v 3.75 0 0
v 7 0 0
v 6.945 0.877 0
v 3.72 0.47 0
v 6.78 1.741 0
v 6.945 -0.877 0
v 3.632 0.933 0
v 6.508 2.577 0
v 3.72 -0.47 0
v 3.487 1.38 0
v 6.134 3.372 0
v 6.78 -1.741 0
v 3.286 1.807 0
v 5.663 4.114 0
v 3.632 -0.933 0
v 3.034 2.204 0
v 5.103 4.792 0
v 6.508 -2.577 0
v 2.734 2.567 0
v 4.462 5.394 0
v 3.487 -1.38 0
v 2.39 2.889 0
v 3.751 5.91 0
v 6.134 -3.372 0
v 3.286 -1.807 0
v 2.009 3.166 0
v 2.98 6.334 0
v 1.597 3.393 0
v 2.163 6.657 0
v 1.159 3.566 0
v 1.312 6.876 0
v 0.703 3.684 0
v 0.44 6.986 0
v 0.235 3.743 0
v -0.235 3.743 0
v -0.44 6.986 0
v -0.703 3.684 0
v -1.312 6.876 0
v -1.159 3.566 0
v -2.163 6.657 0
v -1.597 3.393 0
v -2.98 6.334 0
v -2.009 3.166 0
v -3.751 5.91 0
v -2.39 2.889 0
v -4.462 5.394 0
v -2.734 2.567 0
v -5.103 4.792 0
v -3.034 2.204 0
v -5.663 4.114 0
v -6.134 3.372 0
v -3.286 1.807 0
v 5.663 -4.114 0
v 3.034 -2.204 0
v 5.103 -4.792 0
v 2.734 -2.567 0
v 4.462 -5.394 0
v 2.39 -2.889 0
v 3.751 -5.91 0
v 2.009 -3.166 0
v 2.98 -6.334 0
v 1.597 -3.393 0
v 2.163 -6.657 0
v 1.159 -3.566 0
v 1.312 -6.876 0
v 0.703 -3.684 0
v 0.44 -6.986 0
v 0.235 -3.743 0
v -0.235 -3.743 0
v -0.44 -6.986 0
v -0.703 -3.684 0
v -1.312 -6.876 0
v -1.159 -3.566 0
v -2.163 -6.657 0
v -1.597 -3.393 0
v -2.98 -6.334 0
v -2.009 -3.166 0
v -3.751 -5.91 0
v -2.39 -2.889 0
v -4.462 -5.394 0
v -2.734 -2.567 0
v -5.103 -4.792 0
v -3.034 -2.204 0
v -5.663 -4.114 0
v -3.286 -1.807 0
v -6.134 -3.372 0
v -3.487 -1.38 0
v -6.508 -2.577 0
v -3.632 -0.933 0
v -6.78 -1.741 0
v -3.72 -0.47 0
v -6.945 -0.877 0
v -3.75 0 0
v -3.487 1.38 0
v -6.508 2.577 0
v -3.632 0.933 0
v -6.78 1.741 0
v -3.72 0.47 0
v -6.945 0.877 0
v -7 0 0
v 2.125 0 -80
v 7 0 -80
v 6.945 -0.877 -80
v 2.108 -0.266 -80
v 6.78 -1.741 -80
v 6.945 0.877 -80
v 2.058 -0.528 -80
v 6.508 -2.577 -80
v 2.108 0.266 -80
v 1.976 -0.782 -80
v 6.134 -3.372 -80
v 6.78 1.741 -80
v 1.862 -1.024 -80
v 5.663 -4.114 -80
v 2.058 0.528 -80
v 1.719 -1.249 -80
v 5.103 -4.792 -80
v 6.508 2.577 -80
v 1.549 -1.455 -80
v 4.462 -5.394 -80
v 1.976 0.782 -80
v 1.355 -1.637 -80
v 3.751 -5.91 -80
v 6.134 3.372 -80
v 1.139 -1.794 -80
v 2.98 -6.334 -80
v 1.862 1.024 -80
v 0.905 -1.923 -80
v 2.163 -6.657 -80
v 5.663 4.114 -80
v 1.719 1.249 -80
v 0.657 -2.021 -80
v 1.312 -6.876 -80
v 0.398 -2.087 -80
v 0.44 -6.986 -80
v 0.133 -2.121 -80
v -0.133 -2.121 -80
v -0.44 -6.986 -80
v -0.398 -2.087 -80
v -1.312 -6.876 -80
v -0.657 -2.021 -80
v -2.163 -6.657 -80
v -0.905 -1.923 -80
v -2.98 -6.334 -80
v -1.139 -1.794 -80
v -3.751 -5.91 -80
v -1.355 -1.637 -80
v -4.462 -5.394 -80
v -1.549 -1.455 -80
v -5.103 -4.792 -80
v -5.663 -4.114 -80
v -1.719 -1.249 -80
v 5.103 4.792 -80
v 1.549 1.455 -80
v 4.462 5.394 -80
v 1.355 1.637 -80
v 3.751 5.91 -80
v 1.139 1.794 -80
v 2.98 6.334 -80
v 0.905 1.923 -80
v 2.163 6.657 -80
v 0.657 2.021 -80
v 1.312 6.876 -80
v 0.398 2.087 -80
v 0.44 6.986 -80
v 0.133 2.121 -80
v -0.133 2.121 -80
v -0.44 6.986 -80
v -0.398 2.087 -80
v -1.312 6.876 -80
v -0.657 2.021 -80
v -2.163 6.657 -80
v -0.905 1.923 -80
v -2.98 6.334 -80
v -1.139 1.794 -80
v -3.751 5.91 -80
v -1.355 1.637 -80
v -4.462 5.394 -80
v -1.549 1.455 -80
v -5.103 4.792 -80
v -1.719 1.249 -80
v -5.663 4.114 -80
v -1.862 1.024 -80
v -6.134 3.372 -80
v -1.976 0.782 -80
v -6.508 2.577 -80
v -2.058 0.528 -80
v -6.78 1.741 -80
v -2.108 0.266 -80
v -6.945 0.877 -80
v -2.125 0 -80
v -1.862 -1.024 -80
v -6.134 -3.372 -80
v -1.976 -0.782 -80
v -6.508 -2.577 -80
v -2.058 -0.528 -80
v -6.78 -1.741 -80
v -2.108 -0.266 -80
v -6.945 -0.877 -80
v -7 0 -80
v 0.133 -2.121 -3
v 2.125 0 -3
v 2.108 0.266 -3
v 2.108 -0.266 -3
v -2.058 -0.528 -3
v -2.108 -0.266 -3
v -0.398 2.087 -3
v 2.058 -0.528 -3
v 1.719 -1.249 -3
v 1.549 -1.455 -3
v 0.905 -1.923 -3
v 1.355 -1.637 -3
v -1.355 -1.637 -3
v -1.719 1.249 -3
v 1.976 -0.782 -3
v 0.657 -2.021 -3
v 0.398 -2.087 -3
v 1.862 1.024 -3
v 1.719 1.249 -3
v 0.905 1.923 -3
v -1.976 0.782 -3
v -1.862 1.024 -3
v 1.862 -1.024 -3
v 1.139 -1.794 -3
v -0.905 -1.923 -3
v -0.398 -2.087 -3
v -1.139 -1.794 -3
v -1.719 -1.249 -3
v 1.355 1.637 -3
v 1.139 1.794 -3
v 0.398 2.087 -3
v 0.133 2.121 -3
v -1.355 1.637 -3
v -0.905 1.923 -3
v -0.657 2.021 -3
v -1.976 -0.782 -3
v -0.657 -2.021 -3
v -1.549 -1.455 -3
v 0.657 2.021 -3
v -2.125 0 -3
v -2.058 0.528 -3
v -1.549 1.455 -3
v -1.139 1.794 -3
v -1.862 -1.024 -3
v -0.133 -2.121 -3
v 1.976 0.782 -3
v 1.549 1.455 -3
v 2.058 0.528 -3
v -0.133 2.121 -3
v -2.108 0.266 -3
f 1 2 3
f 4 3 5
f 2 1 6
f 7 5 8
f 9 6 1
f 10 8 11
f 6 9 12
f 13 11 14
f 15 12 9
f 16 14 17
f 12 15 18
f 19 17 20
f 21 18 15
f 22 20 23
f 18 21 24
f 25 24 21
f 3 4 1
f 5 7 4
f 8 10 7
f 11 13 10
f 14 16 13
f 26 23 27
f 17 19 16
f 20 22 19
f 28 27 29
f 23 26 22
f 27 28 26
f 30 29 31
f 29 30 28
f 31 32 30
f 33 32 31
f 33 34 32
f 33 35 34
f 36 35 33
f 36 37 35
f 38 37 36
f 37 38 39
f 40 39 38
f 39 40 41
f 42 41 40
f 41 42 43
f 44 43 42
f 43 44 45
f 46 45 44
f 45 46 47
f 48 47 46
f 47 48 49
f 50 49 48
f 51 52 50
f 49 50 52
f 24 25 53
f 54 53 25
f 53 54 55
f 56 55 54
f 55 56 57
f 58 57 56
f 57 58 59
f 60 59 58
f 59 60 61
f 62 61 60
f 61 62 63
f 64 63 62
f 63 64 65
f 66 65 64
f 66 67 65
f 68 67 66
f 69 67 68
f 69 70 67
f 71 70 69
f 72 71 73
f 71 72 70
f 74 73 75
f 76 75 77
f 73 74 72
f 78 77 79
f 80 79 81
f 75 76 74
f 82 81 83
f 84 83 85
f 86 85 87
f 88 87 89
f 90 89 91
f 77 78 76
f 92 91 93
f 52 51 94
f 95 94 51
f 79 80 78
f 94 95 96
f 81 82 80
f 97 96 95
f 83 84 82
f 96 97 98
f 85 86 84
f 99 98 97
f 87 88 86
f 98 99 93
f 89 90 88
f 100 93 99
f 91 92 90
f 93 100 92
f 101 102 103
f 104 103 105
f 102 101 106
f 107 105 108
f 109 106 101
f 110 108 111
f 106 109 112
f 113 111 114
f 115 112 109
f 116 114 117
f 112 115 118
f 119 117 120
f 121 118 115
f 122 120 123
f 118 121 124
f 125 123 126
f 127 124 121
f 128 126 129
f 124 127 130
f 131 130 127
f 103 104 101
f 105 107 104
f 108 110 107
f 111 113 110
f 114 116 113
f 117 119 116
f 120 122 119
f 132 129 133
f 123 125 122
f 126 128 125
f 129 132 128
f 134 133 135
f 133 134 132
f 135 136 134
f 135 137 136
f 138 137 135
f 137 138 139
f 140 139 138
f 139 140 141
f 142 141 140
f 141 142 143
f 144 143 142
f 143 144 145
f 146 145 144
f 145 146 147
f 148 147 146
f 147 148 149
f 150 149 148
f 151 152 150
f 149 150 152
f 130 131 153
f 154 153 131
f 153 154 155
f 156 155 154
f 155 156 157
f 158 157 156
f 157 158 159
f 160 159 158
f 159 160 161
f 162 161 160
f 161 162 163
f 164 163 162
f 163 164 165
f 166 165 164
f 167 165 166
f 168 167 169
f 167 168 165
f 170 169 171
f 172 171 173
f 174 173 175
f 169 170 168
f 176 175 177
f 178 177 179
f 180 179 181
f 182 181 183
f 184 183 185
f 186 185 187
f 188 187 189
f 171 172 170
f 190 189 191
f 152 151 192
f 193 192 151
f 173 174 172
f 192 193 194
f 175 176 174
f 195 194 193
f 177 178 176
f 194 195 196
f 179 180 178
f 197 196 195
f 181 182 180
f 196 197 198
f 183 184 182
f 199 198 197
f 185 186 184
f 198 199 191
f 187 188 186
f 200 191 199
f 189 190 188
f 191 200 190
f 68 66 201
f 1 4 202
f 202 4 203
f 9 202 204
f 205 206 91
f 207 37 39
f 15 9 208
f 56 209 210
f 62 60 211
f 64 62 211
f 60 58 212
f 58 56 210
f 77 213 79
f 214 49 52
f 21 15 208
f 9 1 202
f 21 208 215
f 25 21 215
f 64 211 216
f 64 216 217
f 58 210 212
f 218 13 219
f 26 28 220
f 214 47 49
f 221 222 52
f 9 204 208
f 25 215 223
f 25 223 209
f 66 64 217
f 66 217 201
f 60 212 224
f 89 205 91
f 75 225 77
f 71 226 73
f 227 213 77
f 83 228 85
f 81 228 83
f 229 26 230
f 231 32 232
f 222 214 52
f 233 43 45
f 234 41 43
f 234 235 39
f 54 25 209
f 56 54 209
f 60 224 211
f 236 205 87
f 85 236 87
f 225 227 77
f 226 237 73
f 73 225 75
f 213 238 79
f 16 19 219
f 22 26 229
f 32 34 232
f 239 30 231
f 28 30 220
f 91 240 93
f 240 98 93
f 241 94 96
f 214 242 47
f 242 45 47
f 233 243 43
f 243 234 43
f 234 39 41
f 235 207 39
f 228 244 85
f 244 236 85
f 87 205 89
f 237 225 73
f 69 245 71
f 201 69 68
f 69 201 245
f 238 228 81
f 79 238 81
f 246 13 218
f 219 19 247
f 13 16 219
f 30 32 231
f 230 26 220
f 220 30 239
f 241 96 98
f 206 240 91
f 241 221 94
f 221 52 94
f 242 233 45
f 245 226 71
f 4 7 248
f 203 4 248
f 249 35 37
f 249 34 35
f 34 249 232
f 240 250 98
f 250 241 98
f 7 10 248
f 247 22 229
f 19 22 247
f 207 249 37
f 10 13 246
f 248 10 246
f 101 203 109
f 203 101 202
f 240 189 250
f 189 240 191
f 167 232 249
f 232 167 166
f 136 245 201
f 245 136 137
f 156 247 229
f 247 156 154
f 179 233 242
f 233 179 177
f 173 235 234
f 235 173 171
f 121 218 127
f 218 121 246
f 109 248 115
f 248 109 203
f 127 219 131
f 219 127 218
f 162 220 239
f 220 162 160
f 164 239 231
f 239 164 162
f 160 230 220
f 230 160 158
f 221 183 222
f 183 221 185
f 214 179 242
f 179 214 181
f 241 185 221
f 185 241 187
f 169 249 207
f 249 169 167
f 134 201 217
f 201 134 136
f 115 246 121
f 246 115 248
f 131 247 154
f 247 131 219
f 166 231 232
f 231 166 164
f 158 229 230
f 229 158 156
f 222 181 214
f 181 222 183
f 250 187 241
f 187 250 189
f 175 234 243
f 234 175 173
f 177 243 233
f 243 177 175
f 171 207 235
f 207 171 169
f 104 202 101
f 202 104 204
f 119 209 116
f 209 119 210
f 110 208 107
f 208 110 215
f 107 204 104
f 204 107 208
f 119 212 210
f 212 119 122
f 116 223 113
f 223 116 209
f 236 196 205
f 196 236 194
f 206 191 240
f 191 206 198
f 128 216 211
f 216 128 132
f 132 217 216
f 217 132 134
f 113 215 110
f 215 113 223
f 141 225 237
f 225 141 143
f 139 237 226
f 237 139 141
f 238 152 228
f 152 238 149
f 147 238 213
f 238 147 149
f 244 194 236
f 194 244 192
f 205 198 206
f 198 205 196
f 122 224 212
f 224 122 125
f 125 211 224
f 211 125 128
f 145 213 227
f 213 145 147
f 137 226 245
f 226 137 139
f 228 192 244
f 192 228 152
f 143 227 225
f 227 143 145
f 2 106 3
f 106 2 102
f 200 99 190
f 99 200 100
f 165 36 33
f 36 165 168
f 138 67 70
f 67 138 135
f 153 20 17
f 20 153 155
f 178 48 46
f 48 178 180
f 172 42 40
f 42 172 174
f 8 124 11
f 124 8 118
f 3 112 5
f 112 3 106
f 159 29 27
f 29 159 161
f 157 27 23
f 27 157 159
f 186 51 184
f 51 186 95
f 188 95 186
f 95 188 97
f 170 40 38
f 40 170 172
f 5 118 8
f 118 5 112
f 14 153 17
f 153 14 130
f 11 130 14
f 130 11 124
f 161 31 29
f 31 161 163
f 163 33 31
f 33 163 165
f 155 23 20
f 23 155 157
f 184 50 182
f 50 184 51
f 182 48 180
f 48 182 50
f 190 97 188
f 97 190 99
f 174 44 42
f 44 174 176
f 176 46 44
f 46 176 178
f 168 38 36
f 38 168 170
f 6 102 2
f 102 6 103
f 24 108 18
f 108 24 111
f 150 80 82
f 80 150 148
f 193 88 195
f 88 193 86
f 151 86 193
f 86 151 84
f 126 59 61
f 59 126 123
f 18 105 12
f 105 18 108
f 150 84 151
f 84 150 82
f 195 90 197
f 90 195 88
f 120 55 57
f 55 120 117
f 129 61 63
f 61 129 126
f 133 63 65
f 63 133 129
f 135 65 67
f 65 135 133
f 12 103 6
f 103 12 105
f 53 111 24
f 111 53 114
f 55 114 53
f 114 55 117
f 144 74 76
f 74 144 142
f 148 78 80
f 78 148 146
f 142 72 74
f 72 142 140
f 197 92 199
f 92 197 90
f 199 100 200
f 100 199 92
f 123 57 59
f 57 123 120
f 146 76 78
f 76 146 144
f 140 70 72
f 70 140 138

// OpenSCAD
$fn = 50;


difference() {
	union() {
		translate(v = [0, 0, -80.0000000000]) {
			cylinder(h = 80, r = 7.0000000000);
		}
	}
	union() {
		translate(v = [0, 0, 0]) {
			rotate(a = [0, 0, 0]) {
				difference() {
					union() {
						#translate(v = [0, 0, -80.0000000000]) {
							cylinder(h = 80, r = 2.0000000000);
						}
						#translate(v = [0, 0, -3]) {
							cylinder(h = 3, r = 7.0000000000, r1 = 2.1250000000, r2 = 3.7500000000);
						}
						#translate(v = [0, 0, -80.0000000000]) {
							cylinder(h = 80, r = 2.1250000000);
						}
						#translate(v = [0, 0, -80.0000000000]) {
							cylinder(h = 80, r = 2.0000000000);
						}
					}
					union();
				}
			}
		}
	}
}
